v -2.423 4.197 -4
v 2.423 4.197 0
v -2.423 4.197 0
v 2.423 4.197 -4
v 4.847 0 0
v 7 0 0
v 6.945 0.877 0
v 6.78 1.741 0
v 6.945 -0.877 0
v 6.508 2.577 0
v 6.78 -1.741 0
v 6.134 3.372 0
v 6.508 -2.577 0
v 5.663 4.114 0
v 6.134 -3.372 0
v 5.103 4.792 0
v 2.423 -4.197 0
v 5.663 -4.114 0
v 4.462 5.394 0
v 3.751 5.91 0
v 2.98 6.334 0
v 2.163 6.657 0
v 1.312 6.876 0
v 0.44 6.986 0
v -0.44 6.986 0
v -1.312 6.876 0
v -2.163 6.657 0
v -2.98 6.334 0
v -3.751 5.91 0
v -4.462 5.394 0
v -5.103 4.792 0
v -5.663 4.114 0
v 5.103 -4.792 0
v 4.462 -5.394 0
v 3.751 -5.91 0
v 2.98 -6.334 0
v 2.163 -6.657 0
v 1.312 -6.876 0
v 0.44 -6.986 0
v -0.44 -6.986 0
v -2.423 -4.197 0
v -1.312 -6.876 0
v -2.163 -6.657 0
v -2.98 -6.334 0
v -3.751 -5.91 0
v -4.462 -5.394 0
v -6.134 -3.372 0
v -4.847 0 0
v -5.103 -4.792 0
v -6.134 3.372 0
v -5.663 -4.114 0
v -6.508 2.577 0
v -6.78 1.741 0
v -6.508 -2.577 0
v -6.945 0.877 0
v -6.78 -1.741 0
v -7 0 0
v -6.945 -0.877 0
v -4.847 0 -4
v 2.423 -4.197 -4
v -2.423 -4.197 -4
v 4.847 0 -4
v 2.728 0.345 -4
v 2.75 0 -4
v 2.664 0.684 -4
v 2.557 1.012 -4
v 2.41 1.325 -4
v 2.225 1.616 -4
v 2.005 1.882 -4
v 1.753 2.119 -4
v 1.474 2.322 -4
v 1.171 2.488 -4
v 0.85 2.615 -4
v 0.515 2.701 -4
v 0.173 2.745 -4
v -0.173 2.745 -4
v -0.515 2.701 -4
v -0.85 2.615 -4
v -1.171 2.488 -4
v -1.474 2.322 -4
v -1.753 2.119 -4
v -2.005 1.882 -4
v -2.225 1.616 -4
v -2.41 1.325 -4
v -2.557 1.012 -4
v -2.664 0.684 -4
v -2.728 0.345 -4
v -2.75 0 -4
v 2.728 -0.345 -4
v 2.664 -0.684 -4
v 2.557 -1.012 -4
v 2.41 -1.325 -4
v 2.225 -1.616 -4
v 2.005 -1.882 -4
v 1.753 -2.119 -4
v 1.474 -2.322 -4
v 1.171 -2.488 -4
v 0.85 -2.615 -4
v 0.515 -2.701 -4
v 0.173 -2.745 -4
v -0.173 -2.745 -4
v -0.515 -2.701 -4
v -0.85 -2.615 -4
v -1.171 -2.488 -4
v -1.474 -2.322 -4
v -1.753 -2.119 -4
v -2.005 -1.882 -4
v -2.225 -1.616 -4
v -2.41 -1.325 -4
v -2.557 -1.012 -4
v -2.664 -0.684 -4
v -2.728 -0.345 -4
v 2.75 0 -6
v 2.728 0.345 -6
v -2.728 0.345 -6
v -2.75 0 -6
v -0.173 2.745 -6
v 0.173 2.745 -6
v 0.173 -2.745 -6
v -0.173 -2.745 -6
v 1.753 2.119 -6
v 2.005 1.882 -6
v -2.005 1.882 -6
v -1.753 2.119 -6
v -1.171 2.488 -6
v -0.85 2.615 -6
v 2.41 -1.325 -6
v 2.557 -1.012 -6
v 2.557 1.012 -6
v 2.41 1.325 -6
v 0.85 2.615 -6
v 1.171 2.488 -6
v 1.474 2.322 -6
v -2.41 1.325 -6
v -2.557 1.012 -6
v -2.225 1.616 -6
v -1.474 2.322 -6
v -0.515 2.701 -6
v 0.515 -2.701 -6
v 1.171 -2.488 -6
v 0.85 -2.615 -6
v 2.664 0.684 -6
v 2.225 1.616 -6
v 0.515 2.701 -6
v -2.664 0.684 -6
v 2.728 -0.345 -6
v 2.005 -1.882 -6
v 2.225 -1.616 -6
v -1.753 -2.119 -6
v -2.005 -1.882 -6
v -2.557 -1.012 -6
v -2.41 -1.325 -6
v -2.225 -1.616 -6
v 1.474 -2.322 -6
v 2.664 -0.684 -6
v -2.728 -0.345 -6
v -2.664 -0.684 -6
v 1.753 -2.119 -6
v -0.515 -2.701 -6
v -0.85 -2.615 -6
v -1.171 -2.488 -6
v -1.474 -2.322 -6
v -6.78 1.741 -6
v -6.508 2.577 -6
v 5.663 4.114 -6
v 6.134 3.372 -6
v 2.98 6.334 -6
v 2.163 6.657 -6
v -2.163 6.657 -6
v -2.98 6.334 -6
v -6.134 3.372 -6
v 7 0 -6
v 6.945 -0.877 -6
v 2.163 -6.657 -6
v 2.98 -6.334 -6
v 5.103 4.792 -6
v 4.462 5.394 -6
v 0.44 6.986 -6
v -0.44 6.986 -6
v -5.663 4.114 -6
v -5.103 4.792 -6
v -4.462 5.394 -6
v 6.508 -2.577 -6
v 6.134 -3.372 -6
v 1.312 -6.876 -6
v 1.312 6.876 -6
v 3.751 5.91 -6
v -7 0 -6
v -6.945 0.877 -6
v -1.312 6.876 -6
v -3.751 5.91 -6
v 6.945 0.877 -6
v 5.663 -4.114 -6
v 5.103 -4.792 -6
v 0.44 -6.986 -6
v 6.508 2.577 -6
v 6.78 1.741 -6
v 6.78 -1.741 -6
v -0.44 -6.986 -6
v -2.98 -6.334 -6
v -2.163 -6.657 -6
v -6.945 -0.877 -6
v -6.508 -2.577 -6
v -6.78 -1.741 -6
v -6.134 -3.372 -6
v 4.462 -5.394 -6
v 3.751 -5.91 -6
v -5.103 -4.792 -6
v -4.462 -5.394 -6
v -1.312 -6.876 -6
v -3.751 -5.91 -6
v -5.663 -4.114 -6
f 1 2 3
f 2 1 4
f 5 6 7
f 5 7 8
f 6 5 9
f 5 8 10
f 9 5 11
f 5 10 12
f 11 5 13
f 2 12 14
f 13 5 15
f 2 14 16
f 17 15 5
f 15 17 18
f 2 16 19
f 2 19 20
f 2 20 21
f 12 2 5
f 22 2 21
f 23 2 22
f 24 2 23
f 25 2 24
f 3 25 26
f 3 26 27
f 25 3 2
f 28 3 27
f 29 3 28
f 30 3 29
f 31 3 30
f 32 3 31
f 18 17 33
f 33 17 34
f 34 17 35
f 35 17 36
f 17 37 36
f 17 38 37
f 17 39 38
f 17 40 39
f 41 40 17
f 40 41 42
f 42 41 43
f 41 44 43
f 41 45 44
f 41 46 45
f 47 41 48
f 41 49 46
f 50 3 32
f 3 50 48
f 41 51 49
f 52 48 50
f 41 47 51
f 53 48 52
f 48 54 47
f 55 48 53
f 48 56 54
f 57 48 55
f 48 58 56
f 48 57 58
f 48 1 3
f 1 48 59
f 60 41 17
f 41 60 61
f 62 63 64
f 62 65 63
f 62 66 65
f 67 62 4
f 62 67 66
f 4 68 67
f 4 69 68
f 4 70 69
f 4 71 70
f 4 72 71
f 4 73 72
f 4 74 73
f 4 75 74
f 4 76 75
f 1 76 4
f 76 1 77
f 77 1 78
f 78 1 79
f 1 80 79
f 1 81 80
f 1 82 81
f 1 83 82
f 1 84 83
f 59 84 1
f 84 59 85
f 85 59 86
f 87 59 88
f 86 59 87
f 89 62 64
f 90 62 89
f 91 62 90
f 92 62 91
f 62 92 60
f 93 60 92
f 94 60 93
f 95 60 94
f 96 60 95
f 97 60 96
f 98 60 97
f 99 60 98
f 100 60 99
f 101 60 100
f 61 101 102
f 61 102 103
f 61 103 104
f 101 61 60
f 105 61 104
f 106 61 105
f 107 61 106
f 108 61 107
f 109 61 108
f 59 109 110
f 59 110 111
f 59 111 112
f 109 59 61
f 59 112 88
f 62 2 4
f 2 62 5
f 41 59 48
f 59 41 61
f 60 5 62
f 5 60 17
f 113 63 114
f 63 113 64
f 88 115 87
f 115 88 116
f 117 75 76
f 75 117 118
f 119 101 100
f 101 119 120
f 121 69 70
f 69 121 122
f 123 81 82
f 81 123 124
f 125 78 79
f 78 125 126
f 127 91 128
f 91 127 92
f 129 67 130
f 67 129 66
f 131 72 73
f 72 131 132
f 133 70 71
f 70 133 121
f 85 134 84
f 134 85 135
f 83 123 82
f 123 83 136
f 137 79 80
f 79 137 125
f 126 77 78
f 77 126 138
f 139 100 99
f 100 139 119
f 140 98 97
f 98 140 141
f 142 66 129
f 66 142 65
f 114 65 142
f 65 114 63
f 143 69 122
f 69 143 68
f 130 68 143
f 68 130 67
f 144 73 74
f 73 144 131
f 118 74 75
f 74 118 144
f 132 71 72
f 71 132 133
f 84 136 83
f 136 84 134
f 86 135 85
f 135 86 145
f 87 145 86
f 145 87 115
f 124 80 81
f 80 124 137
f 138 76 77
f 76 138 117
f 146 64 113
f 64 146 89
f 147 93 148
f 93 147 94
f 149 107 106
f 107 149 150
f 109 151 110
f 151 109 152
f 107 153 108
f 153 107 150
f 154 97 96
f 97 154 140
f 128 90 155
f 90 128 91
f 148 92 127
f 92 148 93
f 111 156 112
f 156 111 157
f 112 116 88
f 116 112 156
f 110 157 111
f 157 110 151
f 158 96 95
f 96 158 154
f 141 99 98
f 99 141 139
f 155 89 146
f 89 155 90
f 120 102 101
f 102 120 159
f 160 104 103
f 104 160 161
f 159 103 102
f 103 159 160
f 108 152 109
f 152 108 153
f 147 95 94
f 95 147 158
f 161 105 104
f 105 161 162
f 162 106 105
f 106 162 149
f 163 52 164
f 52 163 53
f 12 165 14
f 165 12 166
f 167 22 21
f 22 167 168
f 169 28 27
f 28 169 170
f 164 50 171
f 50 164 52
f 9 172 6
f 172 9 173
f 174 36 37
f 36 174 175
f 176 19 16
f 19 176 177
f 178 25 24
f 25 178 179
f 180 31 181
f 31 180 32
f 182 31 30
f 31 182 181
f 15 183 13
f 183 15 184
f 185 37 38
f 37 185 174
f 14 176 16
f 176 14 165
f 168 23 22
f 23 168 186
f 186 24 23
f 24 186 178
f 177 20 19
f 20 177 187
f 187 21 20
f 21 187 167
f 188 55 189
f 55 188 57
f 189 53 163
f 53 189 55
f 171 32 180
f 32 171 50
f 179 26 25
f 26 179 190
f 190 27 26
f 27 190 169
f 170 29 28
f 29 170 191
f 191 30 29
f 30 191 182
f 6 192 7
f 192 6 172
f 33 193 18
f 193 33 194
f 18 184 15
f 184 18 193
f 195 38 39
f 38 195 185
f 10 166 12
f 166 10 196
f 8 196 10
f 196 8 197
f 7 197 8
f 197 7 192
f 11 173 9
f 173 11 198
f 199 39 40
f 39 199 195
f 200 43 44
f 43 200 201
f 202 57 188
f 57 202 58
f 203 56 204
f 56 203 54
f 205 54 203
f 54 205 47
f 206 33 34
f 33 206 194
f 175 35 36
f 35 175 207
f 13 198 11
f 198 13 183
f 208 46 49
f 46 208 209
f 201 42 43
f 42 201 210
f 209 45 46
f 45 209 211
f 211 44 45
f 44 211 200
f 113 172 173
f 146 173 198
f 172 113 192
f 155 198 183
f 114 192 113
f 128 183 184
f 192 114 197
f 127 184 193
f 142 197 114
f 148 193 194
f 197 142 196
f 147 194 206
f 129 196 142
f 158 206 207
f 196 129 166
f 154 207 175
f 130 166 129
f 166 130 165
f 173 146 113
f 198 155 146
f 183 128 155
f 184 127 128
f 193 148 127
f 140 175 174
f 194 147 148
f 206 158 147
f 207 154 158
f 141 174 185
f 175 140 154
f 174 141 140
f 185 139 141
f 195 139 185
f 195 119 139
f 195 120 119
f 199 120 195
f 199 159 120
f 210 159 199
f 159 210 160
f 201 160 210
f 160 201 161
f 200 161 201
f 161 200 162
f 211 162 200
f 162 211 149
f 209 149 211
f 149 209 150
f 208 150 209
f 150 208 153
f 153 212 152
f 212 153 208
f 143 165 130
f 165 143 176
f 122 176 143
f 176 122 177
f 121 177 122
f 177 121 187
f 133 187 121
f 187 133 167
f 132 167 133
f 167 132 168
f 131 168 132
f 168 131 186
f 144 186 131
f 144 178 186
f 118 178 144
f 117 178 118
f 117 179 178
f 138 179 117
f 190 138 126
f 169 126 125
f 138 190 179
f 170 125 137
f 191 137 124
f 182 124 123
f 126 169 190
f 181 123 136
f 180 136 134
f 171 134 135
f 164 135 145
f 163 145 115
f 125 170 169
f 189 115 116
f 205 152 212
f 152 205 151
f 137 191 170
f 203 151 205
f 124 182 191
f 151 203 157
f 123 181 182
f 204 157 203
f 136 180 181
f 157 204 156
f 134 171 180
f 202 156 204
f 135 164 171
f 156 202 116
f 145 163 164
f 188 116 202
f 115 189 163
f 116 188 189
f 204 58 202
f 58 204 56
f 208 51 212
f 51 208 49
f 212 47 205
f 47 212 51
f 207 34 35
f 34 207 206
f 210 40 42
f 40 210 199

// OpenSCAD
$fn = 50;


difference() {
	union() {
		translate(v = [0, 0, -6.0000000000]) {
			cylinder(h = 6.0000000000, r = 7.0000000000);
		}
	}
	union() {
		translate(v = [0, 0, 0]) {
			rotate(a = [0, 0, 0]) {
				difference() {
					union() {
						translate(v = [0, 0, -4]) {
							#linear_extrude(height = 4) {
								polygon(points = [[4.8468000000, 0.0000000000], [2.4234000000, 4.1974519271], [-2.4234000000, 4.1974519271], [-4.8468000000, 0.0000000000], [-2.4234000000, -4.1974519271], [2.4234000000, -4.1974519271]]);
							}
						}
					}
					union();
				}
			}
		}
		#translate(v = [0, 0, -100.0000000000]) {
			cylinder(h = 200, r = 2.7500000000);
		}
	}
}
